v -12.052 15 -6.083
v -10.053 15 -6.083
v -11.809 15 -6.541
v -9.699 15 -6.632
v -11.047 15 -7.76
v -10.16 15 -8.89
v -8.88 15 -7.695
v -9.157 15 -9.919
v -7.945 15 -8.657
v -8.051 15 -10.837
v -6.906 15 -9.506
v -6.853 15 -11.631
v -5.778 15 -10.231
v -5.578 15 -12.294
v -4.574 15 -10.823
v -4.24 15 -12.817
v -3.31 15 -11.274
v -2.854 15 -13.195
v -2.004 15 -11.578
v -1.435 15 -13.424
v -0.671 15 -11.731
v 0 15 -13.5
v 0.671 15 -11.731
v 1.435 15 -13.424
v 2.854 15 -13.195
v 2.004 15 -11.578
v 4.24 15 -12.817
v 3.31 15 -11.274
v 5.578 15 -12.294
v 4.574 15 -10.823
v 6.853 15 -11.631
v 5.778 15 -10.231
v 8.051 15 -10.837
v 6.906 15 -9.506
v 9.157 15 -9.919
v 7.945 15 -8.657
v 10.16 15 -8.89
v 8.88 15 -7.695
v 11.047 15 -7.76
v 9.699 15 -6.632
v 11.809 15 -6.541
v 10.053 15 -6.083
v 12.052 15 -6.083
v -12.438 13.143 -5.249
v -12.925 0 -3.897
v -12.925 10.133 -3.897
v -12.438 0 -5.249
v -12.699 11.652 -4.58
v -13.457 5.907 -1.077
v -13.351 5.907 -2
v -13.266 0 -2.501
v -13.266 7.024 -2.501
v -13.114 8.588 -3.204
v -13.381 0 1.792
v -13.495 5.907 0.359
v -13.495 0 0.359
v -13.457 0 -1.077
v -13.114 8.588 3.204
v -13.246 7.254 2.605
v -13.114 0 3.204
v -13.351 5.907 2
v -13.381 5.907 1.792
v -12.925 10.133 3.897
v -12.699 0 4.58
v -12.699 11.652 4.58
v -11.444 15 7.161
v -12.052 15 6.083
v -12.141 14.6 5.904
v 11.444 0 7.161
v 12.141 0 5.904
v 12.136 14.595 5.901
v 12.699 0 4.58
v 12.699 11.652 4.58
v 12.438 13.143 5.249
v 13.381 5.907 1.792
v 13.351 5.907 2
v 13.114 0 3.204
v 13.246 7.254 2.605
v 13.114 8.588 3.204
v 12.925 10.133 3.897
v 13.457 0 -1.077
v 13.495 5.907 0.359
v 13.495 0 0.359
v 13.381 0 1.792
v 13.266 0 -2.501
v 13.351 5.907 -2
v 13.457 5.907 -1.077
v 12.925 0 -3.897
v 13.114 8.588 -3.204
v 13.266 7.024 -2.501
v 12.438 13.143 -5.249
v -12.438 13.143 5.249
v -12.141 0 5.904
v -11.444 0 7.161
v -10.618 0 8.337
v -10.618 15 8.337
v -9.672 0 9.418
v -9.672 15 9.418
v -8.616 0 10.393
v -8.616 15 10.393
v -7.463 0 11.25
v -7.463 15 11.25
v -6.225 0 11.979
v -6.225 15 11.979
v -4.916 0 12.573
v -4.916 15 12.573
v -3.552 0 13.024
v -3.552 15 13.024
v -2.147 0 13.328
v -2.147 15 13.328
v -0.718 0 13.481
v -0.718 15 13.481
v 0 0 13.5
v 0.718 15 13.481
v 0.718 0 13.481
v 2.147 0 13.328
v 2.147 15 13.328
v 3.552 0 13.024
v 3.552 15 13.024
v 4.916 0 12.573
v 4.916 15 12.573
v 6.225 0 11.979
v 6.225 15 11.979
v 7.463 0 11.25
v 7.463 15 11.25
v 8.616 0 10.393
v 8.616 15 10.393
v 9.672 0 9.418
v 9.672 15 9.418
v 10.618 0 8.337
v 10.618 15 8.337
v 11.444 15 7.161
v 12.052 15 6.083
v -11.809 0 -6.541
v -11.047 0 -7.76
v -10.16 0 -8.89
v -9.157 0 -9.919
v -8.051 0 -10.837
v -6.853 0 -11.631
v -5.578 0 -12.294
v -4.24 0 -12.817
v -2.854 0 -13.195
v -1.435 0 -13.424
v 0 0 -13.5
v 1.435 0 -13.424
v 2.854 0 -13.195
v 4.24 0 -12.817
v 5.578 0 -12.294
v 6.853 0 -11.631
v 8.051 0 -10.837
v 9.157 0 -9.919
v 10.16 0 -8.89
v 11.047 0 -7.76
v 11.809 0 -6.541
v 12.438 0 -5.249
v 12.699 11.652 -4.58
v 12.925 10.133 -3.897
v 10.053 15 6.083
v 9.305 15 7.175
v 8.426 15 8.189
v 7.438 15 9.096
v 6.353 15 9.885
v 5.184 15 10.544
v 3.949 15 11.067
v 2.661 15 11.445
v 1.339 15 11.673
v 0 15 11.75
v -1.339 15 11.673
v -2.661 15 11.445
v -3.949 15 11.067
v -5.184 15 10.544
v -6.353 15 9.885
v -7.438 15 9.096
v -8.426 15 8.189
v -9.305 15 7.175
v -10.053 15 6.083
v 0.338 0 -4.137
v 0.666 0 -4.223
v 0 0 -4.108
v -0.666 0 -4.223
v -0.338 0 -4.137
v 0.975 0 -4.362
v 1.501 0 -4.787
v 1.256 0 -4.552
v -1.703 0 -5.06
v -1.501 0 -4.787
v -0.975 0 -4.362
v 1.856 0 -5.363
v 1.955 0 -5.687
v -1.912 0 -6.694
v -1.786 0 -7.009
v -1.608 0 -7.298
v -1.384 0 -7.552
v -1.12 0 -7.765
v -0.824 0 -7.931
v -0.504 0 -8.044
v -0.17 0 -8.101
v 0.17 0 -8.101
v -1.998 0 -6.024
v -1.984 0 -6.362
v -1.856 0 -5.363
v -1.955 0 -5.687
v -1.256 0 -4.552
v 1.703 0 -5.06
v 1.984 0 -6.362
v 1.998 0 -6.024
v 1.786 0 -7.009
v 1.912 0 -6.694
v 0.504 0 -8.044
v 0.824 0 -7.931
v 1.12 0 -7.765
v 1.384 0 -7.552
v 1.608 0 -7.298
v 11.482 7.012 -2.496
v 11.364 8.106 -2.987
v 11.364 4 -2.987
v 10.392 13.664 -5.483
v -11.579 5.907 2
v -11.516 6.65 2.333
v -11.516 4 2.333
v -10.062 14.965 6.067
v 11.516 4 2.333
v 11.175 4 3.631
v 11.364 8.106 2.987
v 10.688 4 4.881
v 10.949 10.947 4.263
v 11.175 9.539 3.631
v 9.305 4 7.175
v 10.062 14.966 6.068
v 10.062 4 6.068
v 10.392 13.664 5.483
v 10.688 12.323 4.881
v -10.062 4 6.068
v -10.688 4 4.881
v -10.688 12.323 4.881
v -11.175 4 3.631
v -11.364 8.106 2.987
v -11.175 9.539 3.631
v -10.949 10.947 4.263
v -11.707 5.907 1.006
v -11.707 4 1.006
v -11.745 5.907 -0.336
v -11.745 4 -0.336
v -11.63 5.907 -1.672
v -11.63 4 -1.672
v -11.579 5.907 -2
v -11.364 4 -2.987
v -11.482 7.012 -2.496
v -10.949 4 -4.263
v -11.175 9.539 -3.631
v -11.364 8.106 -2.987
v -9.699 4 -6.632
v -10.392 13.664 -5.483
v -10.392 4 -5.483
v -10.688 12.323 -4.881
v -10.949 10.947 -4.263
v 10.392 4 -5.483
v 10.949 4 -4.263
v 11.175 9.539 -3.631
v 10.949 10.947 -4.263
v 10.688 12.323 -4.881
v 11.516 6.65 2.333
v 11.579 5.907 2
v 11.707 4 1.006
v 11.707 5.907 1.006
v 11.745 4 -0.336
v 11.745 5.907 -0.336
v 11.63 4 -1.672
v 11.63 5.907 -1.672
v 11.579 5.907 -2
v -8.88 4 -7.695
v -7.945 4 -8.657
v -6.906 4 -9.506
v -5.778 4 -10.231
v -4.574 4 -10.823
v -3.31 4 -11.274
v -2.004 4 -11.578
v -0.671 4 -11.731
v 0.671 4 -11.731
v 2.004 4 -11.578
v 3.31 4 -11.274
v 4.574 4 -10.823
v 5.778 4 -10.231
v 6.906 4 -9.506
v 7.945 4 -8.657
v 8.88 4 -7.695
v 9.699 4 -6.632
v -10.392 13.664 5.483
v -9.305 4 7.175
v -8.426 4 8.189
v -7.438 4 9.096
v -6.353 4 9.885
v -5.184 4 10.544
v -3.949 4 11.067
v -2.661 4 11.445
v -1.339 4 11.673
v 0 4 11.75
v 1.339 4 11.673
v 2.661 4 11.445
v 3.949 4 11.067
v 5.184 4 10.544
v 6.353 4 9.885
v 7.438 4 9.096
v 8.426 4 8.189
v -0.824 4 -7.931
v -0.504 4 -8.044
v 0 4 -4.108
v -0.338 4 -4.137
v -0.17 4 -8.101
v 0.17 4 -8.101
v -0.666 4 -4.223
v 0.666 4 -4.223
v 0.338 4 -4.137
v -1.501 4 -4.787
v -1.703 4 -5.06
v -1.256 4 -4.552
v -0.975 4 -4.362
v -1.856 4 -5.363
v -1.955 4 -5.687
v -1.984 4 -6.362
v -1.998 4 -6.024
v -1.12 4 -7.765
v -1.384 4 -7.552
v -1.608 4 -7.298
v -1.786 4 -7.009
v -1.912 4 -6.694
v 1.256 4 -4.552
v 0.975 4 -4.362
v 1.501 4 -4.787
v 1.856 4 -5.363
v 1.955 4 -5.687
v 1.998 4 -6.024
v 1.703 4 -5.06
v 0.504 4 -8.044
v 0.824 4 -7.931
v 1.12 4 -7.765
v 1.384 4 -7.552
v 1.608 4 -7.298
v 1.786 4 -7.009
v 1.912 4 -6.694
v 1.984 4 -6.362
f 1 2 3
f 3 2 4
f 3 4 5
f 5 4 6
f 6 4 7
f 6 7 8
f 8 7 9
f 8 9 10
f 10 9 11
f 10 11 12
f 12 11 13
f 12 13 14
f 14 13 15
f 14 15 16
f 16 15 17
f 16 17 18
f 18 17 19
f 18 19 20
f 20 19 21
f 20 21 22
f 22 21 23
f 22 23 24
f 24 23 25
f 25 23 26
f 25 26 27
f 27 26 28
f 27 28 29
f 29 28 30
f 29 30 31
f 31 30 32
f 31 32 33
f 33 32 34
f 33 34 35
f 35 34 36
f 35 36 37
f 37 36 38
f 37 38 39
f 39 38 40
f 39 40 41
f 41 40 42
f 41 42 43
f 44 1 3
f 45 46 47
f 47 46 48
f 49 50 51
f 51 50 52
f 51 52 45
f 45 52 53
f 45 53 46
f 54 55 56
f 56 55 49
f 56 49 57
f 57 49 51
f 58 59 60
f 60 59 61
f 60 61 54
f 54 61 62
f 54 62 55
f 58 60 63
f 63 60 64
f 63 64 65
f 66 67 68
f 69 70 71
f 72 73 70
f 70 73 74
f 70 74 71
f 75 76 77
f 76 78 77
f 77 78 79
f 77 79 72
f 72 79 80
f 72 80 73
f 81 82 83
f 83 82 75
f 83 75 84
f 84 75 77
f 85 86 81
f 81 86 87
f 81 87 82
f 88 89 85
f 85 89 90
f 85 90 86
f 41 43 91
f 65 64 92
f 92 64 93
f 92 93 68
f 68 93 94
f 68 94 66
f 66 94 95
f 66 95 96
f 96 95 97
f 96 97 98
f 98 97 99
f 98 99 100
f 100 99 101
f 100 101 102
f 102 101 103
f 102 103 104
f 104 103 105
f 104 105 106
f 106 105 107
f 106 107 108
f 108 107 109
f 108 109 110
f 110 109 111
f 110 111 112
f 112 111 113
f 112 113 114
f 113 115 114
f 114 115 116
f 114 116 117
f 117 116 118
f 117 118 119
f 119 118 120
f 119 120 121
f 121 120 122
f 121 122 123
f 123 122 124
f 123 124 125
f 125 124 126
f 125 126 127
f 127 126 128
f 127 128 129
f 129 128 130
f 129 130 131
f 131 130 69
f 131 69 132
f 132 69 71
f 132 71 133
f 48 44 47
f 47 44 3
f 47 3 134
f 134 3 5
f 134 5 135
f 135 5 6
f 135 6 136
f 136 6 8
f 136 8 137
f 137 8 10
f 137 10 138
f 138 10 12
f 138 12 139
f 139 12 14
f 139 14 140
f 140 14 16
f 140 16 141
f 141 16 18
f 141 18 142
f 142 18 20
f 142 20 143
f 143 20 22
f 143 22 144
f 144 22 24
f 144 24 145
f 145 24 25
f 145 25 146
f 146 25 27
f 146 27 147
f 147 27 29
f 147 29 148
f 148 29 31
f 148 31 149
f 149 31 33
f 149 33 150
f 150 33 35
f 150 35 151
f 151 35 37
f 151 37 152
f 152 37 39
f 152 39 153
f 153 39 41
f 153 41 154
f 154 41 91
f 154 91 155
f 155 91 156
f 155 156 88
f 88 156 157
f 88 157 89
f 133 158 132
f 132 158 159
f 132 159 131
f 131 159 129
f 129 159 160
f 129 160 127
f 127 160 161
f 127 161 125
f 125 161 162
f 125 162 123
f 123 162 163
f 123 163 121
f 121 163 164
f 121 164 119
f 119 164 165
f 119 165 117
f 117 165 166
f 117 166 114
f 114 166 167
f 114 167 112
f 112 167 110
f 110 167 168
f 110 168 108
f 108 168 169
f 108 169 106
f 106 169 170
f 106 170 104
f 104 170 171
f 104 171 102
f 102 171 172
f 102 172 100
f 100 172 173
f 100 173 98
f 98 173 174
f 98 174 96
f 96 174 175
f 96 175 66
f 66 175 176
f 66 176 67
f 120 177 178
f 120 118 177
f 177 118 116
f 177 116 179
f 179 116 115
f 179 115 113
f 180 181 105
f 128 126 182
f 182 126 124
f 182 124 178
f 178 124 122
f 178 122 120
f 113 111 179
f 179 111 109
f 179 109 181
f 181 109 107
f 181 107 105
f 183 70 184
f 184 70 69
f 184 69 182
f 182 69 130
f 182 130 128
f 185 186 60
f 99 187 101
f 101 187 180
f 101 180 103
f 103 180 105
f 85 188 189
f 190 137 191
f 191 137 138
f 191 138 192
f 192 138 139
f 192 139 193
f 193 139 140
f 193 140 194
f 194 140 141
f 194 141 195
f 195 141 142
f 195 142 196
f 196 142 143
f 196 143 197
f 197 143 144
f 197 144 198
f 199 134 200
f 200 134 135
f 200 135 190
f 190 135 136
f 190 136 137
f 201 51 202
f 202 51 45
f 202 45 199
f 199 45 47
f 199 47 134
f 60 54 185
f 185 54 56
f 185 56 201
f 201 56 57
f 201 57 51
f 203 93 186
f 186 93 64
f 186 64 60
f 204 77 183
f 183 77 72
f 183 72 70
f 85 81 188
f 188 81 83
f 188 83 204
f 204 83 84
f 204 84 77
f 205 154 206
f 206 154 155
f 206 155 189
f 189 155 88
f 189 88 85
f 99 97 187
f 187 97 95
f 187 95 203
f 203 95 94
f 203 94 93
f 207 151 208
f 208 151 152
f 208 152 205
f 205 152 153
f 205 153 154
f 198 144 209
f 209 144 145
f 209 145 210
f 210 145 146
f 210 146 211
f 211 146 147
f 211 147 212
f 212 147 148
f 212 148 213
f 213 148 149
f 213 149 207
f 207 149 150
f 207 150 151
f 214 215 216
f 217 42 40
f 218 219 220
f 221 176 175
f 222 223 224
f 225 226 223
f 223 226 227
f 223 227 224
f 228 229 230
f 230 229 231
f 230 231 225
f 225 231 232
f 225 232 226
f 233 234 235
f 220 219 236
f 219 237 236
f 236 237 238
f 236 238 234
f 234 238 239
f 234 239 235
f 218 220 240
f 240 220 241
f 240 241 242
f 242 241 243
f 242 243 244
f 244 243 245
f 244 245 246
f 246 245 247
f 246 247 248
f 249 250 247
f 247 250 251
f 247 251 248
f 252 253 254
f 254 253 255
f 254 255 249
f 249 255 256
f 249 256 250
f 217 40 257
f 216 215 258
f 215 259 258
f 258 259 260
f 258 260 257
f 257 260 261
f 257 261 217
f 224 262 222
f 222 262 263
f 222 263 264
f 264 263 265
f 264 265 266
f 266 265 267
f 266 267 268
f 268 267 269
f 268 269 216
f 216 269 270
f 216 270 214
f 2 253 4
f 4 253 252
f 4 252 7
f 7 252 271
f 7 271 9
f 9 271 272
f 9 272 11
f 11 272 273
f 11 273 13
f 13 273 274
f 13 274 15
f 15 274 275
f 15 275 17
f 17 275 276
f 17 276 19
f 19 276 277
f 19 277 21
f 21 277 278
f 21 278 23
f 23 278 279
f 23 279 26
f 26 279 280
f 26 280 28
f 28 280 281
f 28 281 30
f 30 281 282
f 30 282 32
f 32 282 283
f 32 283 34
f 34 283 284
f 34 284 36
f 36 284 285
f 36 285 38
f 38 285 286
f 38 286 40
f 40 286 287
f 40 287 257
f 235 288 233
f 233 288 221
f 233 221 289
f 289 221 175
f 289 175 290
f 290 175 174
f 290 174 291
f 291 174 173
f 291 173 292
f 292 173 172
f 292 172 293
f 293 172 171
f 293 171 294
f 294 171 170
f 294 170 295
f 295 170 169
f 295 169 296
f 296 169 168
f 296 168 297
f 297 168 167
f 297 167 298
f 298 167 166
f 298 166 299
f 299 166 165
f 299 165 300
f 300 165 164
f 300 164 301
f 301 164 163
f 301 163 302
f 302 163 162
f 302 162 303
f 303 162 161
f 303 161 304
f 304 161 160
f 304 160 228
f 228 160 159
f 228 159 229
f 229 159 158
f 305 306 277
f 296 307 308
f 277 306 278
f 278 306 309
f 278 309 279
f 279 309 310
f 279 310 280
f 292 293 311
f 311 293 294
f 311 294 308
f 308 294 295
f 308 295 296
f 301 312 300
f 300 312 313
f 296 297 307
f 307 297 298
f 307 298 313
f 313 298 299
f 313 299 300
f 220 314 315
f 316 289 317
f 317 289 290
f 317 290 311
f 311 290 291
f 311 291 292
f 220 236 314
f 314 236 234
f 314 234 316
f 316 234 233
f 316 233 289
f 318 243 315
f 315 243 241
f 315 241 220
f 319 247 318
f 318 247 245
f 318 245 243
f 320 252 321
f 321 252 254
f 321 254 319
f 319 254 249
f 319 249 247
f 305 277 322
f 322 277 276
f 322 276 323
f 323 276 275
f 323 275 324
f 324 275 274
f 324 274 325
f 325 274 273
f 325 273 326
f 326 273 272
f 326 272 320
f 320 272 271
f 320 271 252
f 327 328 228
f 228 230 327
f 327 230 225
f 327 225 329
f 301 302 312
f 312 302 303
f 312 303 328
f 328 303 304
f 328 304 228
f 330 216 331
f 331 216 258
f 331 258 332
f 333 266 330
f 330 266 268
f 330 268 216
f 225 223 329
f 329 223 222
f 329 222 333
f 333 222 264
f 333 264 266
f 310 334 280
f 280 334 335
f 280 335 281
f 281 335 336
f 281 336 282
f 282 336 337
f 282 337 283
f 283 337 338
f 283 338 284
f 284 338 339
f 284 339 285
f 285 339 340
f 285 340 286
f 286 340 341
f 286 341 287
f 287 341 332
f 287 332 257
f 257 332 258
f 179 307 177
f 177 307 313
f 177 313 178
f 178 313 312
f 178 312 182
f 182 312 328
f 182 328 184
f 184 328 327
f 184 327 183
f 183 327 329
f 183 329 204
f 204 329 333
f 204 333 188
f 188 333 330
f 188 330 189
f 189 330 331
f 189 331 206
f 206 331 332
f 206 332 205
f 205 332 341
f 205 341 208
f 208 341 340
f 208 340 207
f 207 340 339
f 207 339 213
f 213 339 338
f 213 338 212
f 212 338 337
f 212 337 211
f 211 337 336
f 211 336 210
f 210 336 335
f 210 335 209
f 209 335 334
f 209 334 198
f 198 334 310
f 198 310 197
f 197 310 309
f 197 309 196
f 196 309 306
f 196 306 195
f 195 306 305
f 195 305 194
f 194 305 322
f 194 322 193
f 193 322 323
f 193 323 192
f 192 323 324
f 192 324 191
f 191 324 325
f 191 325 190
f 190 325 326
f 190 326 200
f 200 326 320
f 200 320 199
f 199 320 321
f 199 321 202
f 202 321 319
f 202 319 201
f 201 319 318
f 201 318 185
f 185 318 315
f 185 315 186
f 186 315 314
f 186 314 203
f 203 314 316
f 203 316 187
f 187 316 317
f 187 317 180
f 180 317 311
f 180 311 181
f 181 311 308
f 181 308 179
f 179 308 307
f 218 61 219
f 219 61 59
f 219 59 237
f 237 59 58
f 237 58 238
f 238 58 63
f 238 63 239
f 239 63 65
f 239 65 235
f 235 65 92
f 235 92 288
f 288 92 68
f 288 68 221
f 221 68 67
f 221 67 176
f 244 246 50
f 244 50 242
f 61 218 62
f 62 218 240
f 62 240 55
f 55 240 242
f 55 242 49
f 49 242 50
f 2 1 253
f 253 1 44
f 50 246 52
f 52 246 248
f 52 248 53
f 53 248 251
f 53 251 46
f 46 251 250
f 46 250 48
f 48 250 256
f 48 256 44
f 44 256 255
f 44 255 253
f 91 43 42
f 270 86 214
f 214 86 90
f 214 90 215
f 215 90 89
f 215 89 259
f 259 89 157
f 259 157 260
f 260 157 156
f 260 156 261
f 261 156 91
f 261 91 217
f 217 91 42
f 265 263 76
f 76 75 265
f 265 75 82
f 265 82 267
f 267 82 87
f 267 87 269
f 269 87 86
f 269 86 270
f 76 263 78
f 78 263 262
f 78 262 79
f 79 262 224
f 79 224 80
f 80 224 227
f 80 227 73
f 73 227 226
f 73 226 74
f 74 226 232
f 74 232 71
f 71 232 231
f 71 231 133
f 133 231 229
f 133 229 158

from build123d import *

# Parameters (mm, degrees)
SKETCH_1_R               = 13.5
EXTRUDE_1_DEPTH          = 15
SKETCH_2_R               = 11.75
CUT_EXTRUDE_1_DEPTH      = 11
SKETCH_3_R               = 2
CUT_EXTRUDE_2_DEPTH      = 5
CUT_EXTRUDE_3_DEPTH      = 14.5
CUT_EXTRUDE_3_DEPTH_BACK = 14.5


with BuildPart() as part:
    # Эскиз1 → Бобышка-Вытянуть1 (new body)
    with BuildSketch(Plane(origin=(0, 0, 0), x_dir=(1, 0, 0), z_dir=(0, 1, 0))):
        Circle(SKETCH_1_R)
    extrude(amount=EXTRUDE_1_DEPTH)

    # Эскиз2 → Вырез-Вытянуть1 (cut)
    with BuildSketch(Plane(origin=(0, 15, 0), x_dir=(1, 0, 0), z_dir=(0, 1, 0))):
        Circle(SKETCH_2_R)
    extrude(amount=-CUT_EXTRUDE_1_DEPTH, mode=Mode.SUBTRACT)

    # Эскиз3 → Вырез-Вытянуть2 (cut, through all)
    with BuildSketch(Plane(origin=(0, 4, 0), x_dir=(1, 0, 0), z_dir=(0, 1, 0))):
        with Locations((0, 6.108441075)):
            Circle(SKETCH_3_R)
    extrude(amount=-CUT_EXTRUDE_2_DEPTH, mode=Mode.SUBTRACT)

    # Эскиз4 → Вырез-Вытянуть3 (cut, two sides)
    with BuildSketch(Plane(origin=(0, 0, 0), x_dir=(0, 0, -1), z_dir=(1, 0, 0))) as cut_extrude_3_sk:
        Polygon((2, 5.907484345), (-2, 5.907484345), (-6.083122861, 15), (6.083122861, 15), align=None)
    extrude(amount=CUT_EXTRUDE_3_DEPTH, mode=Mode.SUBTRACT)
    extrude(cut_extrude_3_sk.sketch, amount=-CUT_EXTRUDE_3_DEPTH_BACK, mode=Mode.SUBTRACT)


solid = part.part
